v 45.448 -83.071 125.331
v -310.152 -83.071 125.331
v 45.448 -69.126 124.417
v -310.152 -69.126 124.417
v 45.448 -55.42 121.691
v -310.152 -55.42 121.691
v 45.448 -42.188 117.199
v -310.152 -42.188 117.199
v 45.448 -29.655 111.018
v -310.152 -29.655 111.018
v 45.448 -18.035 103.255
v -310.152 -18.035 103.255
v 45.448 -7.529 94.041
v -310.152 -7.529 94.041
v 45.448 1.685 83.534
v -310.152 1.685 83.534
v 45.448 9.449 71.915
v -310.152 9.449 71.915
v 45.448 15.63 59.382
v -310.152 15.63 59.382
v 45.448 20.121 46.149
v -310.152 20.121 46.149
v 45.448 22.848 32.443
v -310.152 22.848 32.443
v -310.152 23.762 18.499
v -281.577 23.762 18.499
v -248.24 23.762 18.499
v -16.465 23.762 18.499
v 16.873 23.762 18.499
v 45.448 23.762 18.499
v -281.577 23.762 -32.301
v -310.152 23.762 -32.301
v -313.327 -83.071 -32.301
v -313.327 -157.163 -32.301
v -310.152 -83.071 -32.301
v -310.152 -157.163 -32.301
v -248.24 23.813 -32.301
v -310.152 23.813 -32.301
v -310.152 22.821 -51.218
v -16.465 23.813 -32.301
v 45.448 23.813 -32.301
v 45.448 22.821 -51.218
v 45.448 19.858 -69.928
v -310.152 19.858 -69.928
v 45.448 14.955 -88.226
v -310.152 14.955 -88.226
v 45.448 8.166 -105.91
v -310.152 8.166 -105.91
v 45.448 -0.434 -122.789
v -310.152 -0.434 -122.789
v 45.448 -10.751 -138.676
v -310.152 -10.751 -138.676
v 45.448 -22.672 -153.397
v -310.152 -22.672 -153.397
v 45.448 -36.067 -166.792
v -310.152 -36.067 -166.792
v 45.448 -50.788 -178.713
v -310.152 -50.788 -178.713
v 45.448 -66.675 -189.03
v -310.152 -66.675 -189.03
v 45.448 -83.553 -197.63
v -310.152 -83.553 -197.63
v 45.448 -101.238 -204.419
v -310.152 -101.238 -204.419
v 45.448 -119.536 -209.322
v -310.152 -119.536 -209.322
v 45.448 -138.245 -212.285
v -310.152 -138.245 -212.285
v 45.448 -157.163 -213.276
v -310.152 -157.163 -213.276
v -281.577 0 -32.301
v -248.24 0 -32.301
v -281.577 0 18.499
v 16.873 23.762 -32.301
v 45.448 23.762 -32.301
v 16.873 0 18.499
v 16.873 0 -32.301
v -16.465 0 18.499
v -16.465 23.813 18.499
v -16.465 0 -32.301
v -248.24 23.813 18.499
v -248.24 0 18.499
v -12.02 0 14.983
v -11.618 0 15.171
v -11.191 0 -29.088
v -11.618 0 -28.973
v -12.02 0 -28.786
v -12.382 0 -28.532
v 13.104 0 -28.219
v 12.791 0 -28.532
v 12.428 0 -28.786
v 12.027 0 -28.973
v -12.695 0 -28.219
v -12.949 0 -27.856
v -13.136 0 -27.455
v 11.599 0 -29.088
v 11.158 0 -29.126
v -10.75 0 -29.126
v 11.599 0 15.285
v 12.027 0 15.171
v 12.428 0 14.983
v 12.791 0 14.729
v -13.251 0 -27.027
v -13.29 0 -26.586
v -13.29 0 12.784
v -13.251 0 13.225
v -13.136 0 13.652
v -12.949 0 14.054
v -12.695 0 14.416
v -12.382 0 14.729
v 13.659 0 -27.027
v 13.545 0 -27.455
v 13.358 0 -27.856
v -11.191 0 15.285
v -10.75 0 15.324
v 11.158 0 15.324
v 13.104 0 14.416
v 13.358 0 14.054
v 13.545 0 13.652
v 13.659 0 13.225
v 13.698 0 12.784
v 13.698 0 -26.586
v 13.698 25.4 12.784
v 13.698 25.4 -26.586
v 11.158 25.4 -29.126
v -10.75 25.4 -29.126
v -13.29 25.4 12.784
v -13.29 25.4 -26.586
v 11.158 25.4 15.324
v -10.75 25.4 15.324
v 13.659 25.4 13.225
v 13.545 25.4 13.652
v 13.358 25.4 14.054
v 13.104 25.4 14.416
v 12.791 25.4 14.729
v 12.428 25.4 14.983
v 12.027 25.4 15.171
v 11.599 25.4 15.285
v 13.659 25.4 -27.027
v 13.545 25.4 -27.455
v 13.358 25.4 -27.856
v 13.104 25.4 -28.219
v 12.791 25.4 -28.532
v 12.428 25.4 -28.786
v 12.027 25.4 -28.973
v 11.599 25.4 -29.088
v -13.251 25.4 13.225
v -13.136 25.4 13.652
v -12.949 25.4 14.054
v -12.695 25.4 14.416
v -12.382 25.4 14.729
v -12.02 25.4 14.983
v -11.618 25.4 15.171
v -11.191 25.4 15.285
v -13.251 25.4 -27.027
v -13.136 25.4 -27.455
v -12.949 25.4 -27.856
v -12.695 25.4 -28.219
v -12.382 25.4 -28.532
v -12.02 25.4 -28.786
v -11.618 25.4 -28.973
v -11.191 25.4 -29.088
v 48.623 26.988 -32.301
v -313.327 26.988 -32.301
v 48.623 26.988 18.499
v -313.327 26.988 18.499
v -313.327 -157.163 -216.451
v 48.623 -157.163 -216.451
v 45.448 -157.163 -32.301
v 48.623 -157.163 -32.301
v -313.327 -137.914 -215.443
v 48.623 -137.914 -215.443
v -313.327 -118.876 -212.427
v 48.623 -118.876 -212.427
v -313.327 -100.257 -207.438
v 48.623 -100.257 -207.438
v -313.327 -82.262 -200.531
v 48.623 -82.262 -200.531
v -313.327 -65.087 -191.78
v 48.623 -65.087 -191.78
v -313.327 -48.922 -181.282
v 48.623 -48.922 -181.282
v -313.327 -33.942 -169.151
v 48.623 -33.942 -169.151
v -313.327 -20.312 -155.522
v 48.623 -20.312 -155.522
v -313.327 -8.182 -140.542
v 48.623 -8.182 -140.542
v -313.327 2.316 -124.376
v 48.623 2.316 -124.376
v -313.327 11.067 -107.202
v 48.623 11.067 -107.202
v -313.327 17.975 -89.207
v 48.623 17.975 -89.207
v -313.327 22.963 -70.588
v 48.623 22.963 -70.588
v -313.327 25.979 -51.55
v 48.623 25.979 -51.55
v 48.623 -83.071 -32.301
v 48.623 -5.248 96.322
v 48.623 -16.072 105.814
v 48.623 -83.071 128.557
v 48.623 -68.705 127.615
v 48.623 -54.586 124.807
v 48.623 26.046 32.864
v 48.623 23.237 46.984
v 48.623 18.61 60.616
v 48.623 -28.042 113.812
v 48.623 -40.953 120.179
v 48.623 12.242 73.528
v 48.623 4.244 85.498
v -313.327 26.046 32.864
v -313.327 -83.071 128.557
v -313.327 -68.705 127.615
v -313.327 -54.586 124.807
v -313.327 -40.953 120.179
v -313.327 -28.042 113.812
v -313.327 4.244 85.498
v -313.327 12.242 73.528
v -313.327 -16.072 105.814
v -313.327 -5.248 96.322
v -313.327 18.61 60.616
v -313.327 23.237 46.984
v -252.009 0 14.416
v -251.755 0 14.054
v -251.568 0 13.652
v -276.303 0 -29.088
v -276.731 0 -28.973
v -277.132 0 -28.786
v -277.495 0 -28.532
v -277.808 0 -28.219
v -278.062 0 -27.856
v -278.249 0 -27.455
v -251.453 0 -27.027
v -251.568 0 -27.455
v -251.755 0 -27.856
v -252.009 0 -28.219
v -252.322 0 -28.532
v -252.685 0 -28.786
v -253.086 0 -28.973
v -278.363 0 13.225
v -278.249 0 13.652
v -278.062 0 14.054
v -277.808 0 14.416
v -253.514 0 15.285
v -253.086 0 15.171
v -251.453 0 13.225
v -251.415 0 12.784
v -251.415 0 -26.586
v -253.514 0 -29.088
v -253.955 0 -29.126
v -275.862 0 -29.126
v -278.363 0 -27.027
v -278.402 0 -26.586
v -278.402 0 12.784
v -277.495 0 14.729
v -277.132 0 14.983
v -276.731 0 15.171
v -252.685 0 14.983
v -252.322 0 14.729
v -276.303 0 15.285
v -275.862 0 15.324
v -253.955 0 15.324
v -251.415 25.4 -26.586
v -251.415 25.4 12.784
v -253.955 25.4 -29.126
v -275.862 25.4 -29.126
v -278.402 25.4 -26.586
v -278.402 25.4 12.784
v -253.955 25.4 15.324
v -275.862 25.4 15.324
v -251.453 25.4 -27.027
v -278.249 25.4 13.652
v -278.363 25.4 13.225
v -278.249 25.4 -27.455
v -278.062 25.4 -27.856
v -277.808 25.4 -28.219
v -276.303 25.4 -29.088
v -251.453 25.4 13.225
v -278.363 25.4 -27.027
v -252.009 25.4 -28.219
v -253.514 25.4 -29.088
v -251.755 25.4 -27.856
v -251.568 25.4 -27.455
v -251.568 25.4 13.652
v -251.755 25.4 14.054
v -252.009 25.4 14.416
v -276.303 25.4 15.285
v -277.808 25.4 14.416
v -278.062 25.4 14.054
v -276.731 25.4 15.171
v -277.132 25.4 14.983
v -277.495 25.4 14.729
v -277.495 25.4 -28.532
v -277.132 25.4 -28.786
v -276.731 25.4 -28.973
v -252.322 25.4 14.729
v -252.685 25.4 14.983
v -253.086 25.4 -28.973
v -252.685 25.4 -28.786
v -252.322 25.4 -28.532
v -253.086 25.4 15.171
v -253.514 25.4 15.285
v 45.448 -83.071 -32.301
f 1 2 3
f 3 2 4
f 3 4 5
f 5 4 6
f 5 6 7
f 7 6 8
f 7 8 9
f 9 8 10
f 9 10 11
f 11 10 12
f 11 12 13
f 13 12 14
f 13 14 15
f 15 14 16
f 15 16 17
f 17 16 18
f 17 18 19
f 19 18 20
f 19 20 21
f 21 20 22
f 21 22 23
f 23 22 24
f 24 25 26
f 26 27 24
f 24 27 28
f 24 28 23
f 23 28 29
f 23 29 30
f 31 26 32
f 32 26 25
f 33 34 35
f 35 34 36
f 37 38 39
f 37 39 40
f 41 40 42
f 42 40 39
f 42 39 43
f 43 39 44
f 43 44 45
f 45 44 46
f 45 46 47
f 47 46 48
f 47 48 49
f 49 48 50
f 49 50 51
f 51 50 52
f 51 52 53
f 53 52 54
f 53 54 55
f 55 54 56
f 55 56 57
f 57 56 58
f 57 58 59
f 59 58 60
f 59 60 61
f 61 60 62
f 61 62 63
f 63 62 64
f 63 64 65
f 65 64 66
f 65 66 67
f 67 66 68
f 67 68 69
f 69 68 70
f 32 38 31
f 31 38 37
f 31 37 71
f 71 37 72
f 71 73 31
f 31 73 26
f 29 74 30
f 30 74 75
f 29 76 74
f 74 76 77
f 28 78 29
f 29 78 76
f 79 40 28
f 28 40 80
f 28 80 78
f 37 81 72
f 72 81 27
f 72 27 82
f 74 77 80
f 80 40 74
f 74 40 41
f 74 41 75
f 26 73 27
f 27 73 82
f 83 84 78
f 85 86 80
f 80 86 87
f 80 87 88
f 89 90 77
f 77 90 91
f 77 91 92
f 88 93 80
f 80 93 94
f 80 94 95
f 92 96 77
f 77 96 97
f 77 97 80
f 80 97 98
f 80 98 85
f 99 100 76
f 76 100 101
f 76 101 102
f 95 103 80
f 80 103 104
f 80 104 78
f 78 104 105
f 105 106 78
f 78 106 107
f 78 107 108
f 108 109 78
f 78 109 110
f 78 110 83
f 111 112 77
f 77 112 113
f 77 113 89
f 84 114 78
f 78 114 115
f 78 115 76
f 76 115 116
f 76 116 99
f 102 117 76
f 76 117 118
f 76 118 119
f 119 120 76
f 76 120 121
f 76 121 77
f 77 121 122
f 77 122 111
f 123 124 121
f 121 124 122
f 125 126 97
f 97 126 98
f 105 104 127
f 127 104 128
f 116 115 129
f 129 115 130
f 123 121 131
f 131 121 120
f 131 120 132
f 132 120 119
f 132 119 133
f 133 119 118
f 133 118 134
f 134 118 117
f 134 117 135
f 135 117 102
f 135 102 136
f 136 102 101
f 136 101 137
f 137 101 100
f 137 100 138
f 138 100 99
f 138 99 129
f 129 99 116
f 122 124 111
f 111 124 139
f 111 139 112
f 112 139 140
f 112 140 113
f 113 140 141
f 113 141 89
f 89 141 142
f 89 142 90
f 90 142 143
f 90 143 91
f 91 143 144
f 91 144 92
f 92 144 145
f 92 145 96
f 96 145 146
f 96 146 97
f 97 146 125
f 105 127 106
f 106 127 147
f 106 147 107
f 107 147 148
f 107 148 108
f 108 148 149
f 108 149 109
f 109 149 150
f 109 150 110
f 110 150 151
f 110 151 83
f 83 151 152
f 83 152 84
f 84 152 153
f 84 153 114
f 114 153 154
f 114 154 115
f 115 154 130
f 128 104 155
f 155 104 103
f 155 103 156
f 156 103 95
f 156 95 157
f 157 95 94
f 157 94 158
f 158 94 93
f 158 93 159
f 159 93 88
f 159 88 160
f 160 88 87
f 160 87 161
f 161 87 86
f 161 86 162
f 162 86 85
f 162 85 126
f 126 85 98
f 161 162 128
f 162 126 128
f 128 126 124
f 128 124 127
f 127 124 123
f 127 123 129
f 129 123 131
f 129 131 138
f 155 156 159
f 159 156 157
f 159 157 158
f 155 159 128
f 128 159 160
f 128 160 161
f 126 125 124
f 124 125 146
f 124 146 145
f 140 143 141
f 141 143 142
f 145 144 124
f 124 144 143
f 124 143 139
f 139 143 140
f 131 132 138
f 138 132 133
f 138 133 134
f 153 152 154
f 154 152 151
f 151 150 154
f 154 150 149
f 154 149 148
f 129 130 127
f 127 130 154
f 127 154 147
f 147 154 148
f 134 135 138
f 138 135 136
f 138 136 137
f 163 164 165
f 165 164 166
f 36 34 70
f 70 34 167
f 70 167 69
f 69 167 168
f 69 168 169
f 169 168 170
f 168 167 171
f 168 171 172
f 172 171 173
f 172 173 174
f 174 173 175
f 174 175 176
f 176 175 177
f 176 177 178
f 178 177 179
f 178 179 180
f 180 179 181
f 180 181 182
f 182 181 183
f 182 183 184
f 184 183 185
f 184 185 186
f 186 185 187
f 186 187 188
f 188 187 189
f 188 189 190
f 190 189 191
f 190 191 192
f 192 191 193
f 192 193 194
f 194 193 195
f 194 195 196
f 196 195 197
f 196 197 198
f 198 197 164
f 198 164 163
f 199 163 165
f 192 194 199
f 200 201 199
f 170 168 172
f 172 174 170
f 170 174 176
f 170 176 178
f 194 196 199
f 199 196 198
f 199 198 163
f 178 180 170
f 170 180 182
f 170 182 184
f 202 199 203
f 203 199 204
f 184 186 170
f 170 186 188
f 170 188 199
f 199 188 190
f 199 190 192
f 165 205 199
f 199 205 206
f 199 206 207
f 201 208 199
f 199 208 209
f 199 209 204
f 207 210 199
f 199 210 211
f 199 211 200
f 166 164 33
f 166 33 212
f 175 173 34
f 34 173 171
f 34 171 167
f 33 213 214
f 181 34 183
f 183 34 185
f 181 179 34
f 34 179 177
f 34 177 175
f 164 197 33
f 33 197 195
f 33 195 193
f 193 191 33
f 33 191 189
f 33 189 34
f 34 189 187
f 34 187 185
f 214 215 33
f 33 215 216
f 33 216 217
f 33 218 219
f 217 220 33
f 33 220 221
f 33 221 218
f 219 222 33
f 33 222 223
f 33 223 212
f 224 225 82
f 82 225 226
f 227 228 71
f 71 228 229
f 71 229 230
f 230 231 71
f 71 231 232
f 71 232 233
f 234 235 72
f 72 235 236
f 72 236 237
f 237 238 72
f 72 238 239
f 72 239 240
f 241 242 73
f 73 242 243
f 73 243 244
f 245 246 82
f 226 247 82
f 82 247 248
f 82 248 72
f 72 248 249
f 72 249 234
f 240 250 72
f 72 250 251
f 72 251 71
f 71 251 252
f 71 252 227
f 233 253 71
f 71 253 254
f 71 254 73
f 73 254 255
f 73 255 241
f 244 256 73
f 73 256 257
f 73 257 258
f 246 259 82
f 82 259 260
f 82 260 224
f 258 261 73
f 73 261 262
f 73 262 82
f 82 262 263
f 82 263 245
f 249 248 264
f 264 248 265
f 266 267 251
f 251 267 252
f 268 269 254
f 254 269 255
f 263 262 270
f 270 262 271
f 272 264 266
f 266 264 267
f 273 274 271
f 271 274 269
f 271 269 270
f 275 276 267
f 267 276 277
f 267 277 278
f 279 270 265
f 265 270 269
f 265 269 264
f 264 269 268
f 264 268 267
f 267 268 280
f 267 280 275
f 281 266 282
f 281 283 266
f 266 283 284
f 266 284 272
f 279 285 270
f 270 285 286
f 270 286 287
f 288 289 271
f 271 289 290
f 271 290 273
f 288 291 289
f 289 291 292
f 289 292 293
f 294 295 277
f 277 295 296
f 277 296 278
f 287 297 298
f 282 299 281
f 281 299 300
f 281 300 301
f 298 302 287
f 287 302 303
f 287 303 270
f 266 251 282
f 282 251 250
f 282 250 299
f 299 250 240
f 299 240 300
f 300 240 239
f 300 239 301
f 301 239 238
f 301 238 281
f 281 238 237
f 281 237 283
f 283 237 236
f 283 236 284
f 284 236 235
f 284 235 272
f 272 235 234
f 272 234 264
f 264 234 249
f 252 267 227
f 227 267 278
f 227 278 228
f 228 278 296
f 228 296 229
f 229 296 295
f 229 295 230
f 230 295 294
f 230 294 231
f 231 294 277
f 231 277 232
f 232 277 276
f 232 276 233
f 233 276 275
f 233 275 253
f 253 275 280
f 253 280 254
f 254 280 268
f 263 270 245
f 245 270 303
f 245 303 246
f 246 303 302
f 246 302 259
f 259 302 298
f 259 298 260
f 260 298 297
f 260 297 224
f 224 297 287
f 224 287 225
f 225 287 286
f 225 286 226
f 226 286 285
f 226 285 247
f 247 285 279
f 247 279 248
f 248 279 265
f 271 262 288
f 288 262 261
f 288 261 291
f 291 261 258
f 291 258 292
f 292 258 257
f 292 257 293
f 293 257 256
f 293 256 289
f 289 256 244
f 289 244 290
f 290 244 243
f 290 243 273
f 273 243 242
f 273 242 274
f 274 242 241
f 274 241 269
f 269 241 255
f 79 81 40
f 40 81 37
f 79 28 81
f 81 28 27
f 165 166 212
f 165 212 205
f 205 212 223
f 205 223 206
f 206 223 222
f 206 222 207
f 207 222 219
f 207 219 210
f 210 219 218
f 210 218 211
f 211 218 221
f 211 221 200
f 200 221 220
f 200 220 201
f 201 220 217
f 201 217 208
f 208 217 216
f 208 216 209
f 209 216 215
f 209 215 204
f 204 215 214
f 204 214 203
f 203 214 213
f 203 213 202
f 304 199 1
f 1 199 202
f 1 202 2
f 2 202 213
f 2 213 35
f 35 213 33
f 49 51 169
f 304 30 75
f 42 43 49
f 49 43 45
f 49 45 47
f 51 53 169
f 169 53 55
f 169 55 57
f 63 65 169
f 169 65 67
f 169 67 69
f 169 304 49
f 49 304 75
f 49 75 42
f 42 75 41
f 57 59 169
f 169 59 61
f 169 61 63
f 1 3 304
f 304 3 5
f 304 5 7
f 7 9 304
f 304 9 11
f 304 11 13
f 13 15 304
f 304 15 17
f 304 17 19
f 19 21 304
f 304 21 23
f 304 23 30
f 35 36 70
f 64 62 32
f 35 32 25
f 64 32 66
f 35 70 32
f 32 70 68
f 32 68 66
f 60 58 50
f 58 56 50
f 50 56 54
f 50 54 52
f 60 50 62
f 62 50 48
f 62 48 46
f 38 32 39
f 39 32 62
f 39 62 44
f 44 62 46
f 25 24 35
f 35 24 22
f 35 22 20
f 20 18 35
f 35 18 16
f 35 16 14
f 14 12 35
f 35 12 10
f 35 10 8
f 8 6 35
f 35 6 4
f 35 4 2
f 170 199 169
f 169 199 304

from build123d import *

# Parameters (mm, degrees)
SKETCH1_W                = 33.3375
SKETCH1_H                = 50.8
SKETCH1_W_2              = 26.9875
SKETCH1_H_2              = 44.45
BOSS_EXTRUDE1_DEPTH      = 25.4
FILLET2_R                = 2.54
SKETCH2_W                = 33.3375
SKETCH2_H                = 50.8
BOSS_EXTRUDE2_DEPTH      = 1.5875
SKETCH1_5_W              = 33.3375
SKETCH1_5_H              = 50.8
BOSS_EXTRUDE3_DEPTH      = 26.9875
SKETCH1_6_W              = 26.9875
SKETCH1_6_H              = 44.45
CUT_EXTRUDE1_DEPTH       = 25.4
FILLET4_R                = 2.54
BOSS_EXTRUDE4_DEPTH      = 31.75
BOSS_EXTRUDE4_DEPTH_BACK = 330.2
SKETCH6_W                = 231.775
SKETCH6_H                = 3.175
BOSS_EXTRUDE5_DEPTH      = 50.8
BOSS_EXTRUDE6_DEPTH      = 31.75
BOSS_EXTRUDE6_DEPTH_BACK = 330.2
BOSS_EXTRUDE7_START      = -3.175
BOSS_EXTRUDE7_DEPTH      = 3.175
SKETCH10_W               = 50.8
SKETCH10_H               = 3.2258
BOSS_EXTRUDE8_DEPTH      = 31.75
SKETCH11_W               = 3.175
SKETCH11_H               = 180.9242
BOSS_EXTRUDE9_DEPTH      = 50.8
BOSS_EXTRUDE12_START     = -3.175
BOSS_EXTRUDE12_DEPTH     = 3.175
SKETCH14_W               = 50.8
SKETCH14_H               = 3.2258
BOSS_EXTRUDE13_DEPTH     = 31.75
BOSS_EXTRUDE14_DEPTH     = 3.175
SKETCH17_W               = 3.175
SKETCH17_H               = 50.8
BOSS_EXTRUDE15_DEPTH     = 106.8324
BOSS_EXTRUDE16_DEPTH     = 3.175
CUT_EXTRUDE2_REACH       = 452.066
SKETCH21_W               = 50.8
SKETCH21_H               = 74.0918


with BuildPart() as part:
    # Sketch1 → Boss-Extrude1 (new body)
    with BuildSketch(Plane(origin=(0, 0, 0), x_dir=(1, 0, 0), z_dir=(0, 1, 0))):
        with Locations((0.204179282, 6.901311315)):
            Rectangle(SKETCH1_W, SKETCH1_H)
        with Locations((0.204179282, 6.901311315)):
            Rectangle(SKETCH1_W_2, SKETCH1_H_2, mode=Mode.SUBTRACT)
    extrude(amount=BOSS_EXTRUDE1_DEPTH)

    # Fillet2
    fillet2_edges = [part.edges().sort_by_distance(p)[0] for p in [
        (13.697929282, 12.7, 15.323688685),
        (13.697929282, 12.7, -29.126311315),
        (-13.289570718, 12.7, -29.126311315),
        (-13.289570718, 12.7, 15.323688685),
    ]]
    fillet(fillet2_edges, radius=FILLET2_R)

    # Sketch2 → Boss-Extrude2 (add)
    with BuildSketch(Plane(origin=(0, 25.4, 0), x_dir=(1, 0, 0), z_dir=(0, 1, 0))):
        with Locations((0.204179282, 6.901311315)):
            Rectangle(SKETCH2_W, SKETCH2_H)
    extrude(amount=BOSS_EXTRUDE2_DEPTH)



with BuildPart() as body_2:
    # Sketch1<5> → Boss-Extrude3 (new body)
    with BuildSketch(Plane(origin=(0, 0, 0), x_dir=(1, 0, 0), z_dir=(0, 1, 0))):
        with Locations((-264.908320718, 6.901311315)):
            Rectangle(SKETCH1_5_W, SKETCH1_5_H)
    extrude(amount=BOSS_EXTRUDE3_DEPTH)

    # Sketch1<6> → Cut-Extrude1 (cut)
    with BuildSketch(Plane(origin=(0, 0, 0), x_dir=(1, 0, 0), z_dir=(0, 1, 0))):
        with Locations((-264.908320718, 6.901311315)):
            Rectangle(SKETCH1_6_W, SKETCH1_6_H)
    extrude(amount=CUT_EXTRUDE1_DEPTH, mode=Mode.SUBTRACT)

    # Fillet4
    fillet4_edges = [body_2.edges().sort_by_distance(p)[0] for p in [
        (-251.414570718, 12.7, 15.323688685),
        (-251.414570718, 12.7, -29.126311315),
        (-278.402070718, 12.7, -29.126311315),
        (-278.402070718, 12.7, 15.323688685),
    ]]
    fillet(fillet4_edges, radius=FILLET4_R)


with BuildPart() as part_1:
    add(part.part)

    add(body_2.part)  # Boss-Extrude4 merges body 2
    # Sketch4 → Boss-Extrude4 (add, two sides: drawn at the far end of the back side and taken through both)
    with BuildSketch(Plane(origin=(16.872929282, 0, 0), x_dir=(0, 0, -1), z_dir=(1, 0, 0)).offset(-BOSS_EXTRUDE4_DEPTH_BACK)):
        with BuildLine():
            ThreePointArc((32.301311315, 23.8125), (160.269961041, -29.193850275), (213.276311315, -157.1625))
            Line((213.276311315, -157.1625), (216.451311315, -157.1625))
            ThreePointArc((216.451311315, -157.1625), (162.515025071, -26.948786244), (32.301311315, 26.9875))
            Line((32.301311315, 26.9875), (32.301311315, 23.8125))
        make_face()
    extrude(amount=BOSS_EXTRUDE4_DEPTH + BOSS_EXTRUDE4_DEPTH_BACK)

    # Sketch6 → Boss-Extrude5 (add, through all)
    with BuildSketch(Plane.XY.offset(-32.301311315)):
        with Locations((-132.352070718, 25.4)):
            Rectangle(SKETCH6_W, SKETCH6_H)
    extrude(amount=BOSS_EXTRUDE5_DEPTH)

    # Sketch7 → Boss-Extrude6 (add, two sides: drawn at the far end of the back side and taken through both)
    with BuildSketch(Plane(origin=(16.872929282, 0, 0), x_dir=(0, 0, -1), z_dir=(1, 0, 0)).offset(-BOSS_EXTRUDE6_DEPTH_BACK)):
        with BuildLine():
            Line((-18.498688685, 23.7617), (-18.498688685, 26.9875))
            ThreePointArc((-18.498688685, 26.9875), (-96.32158823, -5.247800455), (-128.556888685, -83.0707))
            Line((-128.556888685, -83.0707), (-125.331088685, -83.0707))
            ThreePointArc((-125.331088685, -83.0707), (-94.040603175, -7.52878551), (-18.498688685, 23.7617))
        make_face()
    extrude(amount=BOSS_EXTRUDE6_DEPTH + BOSS_EXTRUDE6_DEPTH_BACK)

    # Sketch9 → Boss-Extrude7 (add)
    with BuildSketch(Plane(origin=(48.622929282, 0, 0), x_dir=(0, 0, -1), z_dir=(1, 0, 0)).offset(BOSS_EXTRUDE7_START)):
        with BuildLine():
            Line((32.301311315, 23.8125), (32.301311315, -157.1625))
            Line((32.301311315, -157.1625), (213.276311315, -157.1625))
            ThreePointArc((213.276311315, -157.1625), (160.269961041, -29.193850275), (32.301311315, 23.8125))
        make_face()
    extrude(amount=BOSS_EXTRUDE7_DEPTH)

    # Sketch10 → Boss-Extrude8 (add)
    with BuildSketch(Plane(origin=(16.872929282, 0, 0), x_dir=(0, 0, -1), z_dir=(1, 0, 0))):
        with Locations((6.901311315, 25.3746)):
            Rectangle(SKETCH10_W, SKETCH10_H)
    extrude(amount=BOSS_EXTRUDE8_DEPTH)

    # Sketch11 → Boss-Extrude9 (add)
    with BuildSketch(Plane.XY.offset(-32.301311315)):
        with Locations((47.035429282, -66.7004)):
            Rectangle(SKETCH11_W, SKETCH11_H)
    extrude(amount=BOSS_EXTRUDE9_DEPTH)

    # Sketch13 → Boss-Extrude12 (add)
    with BuildSketch(Plane(origin=(48.622929282, 0, 0), x_dir=(0, 0, -1), z_dir=(1, 0, 0)).offset(BOSS_EXTRUDE12_START)):
        with BuildLine():
            Line((-125.331088685, -83.0707), (-18.498688685, -83.0707))
            Line((-18.498688685, -83.0707), (-18.498688685, 23.7617))
            ThreePointArc((-18.498688685, 23.7617), (-94.040603175, -7.52878551), (-125.331088685, -83.0707))
        make_face()
    extrude(amount=BOSS_EXTRUDE12_DEPTH)

    # Sketch14 → Boss-Extrude13 (add)
    with BuildSketch(Plane.ZY.offset(281.577070718)):
        with Locations((-6.901311315, 25.3746)):
            Rectangle(SKETCH14_W, SKETCH14_H)
    extrude(amount=BOSS_EXTRUDE13_DEPTH)

    # Sketch15 → Boss-Extrude14 (add)
    with BuildSketch(Plane.ZY.offset(313.327070718)):
        with BuildLine():
            Line((-213.276311315, -157.1625), (-32.301311315, -157.1625))
            Line((-32.301311315, -157.1625), (-32.301311315, 23.8125))
            ThreePointArc((-32.301311315, 23.8125), (-160.269961041, -29.193850275), (-213.276311315, -157.1625))
        make_face()
    extrude(amount=-BOSS_EXTRUDE14_DEPTH)

    # Sketch17 → Boss-Extrude15 (add)
    with BuildSketch(Plane.XZ.offset(-23.7617)):
        with Locations((-311.739570718, -6.901311315)):
            Rectangle(SKETCH17_W, SKETCH17_H)
    extrude(amount=BOSS_EXTRUDE15_DEPTH)

    # Sketch18 → Boss-Extrude16 (add)
    with BuildSketch(Plane.ZY.offset(313.327070718)):
        with BuildLine():
            Line((18.498688685, 23.7617), (18.498688685, -83.0707))
            Line((18.498688685, -83.0707), (125.331088685, -83.0707))
            ThreePointArc((125.331088685, -83.0707), (94.040603175, -7.52878551), (18.498688685, 23.7617))
        make_face()
    extrude(amount=-BOSS_EXTRUDE16_DEPTH)

    # Sketch21 → Cut-Extrude2 (cut, up to next)
    with BuildSketch(Plane(origin=(48.622929282, 0, 0), x_dir=(0, 0, -1), z_dir=(1, 0, 0)), mode=Mode.PRIVATE) as cut_extrude2_sk1:
        with Locations((6.901311315, -120.1166)):
            Rectangle(SKETCH21_W, SKETCH21_H)
    cut_extrude2_tool1 = extrude(cut_extrude2_sk1.sketch, amount=-CUT_EXTRUDE2_REACH, mode=Mode.PRIVATE) & part_1.part
    add(cut_extrude2_tool1.solids().sort_by_distance((48.622929, -120.1166, -6.901311))[0], mode=Mode.SUBTRACT)


solid = part_1.part
